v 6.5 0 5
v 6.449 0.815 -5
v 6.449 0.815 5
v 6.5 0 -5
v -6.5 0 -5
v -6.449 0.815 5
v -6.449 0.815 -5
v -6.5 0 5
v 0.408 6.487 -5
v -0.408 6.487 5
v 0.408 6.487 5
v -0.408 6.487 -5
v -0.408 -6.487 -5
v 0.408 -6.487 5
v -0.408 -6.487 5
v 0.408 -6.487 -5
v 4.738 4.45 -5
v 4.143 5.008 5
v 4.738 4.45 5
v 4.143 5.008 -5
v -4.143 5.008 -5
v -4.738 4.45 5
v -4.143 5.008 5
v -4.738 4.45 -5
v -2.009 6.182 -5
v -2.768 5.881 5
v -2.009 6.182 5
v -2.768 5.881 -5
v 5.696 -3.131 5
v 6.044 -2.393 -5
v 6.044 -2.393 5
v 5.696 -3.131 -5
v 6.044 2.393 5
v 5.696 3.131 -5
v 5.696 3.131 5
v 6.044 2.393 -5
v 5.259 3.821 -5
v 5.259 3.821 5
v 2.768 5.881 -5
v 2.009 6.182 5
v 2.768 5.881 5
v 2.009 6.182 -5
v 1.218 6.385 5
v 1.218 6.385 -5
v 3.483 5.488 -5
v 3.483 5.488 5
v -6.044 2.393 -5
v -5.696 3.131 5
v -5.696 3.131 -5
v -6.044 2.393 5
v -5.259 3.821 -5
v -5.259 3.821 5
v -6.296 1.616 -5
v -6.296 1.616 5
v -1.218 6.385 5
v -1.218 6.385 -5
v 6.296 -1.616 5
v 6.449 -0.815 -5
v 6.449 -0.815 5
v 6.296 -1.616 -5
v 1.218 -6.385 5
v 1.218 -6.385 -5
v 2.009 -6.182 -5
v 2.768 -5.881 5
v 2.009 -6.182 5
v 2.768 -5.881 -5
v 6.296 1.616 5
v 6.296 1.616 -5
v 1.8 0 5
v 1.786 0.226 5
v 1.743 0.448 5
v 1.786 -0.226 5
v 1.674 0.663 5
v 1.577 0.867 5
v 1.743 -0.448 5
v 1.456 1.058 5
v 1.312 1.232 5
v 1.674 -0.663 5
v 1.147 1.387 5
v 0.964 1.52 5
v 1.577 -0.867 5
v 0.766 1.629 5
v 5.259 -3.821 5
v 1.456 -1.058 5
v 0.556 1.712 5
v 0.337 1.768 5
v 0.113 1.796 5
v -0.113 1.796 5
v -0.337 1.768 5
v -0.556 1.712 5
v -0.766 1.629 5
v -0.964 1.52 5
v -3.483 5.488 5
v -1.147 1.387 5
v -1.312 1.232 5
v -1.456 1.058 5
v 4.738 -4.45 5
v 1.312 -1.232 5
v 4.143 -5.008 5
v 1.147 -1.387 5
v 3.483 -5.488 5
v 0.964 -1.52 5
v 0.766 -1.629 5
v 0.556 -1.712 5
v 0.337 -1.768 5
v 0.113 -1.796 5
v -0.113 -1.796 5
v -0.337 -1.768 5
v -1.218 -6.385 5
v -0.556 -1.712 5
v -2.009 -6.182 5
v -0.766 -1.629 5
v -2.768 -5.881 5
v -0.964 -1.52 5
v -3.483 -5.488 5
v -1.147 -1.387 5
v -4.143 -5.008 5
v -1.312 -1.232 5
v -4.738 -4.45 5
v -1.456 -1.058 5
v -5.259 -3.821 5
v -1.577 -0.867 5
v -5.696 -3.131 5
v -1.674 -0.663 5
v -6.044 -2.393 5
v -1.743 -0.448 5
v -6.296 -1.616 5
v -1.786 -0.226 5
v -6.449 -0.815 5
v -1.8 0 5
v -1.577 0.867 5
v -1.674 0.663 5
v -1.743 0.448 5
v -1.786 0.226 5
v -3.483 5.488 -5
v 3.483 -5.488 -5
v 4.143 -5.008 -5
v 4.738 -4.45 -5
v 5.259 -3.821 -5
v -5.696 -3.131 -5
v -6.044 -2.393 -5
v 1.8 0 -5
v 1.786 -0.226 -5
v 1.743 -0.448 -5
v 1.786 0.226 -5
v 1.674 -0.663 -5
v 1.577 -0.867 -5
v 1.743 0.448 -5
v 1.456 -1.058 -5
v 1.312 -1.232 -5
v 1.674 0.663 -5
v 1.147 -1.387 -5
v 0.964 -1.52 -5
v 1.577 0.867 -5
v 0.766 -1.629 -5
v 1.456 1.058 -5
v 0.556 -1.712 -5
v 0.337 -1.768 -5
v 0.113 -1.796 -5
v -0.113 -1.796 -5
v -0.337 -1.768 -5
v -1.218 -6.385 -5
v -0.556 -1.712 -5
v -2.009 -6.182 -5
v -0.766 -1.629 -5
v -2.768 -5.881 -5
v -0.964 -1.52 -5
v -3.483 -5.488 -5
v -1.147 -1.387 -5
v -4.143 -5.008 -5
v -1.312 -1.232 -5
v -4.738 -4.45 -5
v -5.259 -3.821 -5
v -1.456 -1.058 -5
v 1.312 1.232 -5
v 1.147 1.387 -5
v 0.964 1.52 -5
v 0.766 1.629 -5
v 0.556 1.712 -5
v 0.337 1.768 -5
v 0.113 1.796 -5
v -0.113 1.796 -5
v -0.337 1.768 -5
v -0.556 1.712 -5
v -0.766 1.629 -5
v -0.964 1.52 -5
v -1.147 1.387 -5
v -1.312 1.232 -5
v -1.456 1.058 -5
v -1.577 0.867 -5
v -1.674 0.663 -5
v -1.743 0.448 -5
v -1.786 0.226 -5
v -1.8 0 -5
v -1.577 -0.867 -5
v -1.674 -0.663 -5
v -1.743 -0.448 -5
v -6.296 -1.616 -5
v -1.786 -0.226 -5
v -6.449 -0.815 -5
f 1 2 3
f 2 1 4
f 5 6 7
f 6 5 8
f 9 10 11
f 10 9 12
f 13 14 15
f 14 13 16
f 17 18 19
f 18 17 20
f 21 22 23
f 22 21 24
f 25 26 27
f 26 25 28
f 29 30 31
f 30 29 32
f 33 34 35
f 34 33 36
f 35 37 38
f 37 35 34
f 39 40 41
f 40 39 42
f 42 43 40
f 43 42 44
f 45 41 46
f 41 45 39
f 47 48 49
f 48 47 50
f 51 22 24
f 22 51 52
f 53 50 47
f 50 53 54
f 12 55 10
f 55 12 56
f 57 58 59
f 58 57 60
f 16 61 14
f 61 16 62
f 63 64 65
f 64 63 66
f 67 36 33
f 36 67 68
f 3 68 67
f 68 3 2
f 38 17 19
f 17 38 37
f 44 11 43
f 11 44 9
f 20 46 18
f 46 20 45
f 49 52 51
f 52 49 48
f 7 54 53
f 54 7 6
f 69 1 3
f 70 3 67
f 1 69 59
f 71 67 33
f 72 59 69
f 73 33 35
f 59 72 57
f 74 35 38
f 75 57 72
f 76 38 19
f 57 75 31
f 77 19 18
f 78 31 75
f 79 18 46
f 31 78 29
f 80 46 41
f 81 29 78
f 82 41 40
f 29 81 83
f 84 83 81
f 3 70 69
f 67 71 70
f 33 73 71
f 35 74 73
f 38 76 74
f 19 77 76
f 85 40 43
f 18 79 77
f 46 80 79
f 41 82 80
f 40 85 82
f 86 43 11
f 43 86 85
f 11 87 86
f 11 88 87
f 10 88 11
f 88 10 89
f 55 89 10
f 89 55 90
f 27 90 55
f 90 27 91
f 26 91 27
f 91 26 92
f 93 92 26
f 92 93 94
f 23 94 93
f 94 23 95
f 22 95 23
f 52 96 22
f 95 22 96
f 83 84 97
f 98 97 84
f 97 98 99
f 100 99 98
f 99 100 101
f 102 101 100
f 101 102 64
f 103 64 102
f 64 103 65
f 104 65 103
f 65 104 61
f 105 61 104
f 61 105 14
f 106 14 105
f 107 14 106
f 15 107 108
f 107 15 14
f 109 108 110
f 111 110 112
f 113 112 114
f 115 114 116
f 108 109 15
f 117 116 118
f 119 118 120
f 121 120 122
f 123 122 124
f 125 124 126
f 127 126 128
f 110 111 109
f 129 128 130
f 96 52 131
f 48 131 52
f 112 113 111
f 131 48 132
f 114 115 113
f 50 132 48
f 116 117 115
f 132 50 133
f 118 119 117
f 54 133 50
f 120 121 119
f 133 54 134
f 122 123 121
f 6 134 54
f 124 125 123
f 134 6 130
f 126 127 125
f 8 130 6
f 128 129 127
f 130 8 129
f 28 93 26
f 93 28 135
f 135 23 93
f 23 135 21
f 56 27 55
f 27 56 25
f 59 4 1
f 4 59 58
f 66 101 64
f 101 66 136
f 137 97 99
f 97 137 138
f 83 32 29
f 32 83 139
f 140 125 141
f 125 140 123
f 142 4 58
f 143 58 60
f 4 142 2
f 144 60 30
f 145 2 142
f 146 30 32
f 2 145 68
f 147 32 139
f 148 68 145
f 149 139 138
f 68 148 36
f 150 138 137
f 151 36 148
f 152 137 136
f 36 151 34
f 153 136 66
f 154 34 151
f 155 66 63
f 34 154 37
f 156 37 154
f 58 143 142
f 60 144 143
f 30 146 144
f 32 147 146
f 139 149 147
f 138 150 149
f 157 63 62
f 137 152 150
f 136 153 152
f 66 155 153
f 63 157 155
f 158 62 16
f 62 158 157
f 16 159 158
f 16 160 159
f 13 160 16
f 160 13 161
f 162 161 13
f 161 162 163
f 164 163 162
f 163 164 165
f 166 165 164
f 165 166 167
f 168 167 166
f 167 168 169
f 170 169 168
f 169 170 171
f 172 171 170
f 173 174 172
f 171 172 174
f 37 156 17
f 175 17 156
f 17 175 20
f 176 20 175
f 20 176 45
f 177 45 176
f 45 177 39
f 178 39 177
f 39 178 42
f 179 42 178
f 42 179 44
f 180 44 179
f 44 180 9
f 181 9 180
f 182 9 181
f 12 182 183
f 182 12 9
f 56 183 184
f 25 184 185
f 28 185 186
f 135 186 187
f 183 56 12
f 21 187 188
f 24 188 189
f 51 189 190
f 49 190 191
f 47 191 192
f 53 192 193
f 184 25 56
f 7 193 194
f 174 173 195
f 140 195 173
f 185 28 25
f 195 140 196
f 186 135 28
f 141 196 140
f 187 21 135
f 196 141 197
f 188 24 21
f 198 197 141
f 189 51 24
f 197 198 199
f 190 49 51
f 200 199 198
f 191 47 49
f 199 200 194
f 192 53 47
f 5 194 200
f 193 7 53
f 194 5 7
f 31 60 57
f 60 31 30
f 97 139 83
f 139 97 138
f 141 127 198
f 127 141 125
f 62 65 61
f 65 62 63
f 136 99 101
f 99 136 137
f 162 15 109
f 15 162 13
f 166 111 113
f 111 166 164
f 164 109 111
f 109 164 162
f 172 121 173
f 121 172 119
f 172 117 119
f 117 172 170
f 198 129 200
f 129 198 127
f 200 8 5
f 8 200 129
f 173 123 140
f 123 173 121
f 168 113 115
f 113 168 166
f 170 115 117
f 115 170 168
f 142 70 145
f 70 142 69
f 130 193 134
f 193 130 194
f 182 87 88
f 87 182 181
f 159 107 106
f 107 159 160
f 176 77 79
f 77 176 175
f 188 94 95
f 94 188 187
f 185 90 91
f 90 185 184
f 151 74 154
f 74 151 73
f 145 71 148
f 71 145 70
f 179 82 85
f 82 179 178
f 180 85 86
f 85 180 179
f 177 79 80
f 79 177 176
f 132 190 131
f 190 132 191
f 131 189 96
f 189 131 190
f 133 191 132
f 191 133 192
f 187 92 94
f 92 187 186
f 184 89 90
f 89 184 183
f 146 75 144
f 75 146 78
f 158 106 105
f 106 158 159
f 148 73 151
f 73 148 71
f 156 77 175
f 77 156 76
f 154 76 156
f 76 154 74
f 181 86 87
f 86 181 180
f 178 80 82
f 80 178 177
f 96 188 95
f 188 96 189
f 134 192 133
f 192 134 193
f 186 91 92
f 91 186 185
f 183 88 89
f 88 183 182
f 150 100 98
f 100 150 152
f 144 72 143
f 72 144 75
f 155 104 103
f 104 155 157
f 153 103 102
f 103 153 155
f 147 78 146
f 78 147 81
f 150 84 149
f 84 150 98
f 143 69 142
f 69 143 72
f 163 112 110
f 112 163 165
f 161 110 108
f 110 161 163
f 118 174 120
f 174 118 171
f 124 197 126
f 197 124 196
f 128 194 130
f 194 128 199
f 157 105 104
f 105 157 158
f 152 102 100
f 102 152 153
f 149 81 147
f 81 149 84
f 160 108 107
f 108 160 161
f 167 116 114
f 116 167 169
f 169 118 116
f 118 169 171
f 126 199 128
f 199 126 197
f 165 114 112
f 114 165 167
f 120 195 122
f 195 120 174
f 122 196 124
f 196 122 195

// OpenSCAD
$fn = 50;


difference() {
	union() {
		translate(v = [0, 0, -5.0000000000]) {
			cylinder(h = 10, r = 6.5000000000);
		}
	}
	union() {
		translate(v = [0, 0, -100.0000000000]) {
			cylinder(h = 200, r = 1.8000000000);
		}
	}
}
